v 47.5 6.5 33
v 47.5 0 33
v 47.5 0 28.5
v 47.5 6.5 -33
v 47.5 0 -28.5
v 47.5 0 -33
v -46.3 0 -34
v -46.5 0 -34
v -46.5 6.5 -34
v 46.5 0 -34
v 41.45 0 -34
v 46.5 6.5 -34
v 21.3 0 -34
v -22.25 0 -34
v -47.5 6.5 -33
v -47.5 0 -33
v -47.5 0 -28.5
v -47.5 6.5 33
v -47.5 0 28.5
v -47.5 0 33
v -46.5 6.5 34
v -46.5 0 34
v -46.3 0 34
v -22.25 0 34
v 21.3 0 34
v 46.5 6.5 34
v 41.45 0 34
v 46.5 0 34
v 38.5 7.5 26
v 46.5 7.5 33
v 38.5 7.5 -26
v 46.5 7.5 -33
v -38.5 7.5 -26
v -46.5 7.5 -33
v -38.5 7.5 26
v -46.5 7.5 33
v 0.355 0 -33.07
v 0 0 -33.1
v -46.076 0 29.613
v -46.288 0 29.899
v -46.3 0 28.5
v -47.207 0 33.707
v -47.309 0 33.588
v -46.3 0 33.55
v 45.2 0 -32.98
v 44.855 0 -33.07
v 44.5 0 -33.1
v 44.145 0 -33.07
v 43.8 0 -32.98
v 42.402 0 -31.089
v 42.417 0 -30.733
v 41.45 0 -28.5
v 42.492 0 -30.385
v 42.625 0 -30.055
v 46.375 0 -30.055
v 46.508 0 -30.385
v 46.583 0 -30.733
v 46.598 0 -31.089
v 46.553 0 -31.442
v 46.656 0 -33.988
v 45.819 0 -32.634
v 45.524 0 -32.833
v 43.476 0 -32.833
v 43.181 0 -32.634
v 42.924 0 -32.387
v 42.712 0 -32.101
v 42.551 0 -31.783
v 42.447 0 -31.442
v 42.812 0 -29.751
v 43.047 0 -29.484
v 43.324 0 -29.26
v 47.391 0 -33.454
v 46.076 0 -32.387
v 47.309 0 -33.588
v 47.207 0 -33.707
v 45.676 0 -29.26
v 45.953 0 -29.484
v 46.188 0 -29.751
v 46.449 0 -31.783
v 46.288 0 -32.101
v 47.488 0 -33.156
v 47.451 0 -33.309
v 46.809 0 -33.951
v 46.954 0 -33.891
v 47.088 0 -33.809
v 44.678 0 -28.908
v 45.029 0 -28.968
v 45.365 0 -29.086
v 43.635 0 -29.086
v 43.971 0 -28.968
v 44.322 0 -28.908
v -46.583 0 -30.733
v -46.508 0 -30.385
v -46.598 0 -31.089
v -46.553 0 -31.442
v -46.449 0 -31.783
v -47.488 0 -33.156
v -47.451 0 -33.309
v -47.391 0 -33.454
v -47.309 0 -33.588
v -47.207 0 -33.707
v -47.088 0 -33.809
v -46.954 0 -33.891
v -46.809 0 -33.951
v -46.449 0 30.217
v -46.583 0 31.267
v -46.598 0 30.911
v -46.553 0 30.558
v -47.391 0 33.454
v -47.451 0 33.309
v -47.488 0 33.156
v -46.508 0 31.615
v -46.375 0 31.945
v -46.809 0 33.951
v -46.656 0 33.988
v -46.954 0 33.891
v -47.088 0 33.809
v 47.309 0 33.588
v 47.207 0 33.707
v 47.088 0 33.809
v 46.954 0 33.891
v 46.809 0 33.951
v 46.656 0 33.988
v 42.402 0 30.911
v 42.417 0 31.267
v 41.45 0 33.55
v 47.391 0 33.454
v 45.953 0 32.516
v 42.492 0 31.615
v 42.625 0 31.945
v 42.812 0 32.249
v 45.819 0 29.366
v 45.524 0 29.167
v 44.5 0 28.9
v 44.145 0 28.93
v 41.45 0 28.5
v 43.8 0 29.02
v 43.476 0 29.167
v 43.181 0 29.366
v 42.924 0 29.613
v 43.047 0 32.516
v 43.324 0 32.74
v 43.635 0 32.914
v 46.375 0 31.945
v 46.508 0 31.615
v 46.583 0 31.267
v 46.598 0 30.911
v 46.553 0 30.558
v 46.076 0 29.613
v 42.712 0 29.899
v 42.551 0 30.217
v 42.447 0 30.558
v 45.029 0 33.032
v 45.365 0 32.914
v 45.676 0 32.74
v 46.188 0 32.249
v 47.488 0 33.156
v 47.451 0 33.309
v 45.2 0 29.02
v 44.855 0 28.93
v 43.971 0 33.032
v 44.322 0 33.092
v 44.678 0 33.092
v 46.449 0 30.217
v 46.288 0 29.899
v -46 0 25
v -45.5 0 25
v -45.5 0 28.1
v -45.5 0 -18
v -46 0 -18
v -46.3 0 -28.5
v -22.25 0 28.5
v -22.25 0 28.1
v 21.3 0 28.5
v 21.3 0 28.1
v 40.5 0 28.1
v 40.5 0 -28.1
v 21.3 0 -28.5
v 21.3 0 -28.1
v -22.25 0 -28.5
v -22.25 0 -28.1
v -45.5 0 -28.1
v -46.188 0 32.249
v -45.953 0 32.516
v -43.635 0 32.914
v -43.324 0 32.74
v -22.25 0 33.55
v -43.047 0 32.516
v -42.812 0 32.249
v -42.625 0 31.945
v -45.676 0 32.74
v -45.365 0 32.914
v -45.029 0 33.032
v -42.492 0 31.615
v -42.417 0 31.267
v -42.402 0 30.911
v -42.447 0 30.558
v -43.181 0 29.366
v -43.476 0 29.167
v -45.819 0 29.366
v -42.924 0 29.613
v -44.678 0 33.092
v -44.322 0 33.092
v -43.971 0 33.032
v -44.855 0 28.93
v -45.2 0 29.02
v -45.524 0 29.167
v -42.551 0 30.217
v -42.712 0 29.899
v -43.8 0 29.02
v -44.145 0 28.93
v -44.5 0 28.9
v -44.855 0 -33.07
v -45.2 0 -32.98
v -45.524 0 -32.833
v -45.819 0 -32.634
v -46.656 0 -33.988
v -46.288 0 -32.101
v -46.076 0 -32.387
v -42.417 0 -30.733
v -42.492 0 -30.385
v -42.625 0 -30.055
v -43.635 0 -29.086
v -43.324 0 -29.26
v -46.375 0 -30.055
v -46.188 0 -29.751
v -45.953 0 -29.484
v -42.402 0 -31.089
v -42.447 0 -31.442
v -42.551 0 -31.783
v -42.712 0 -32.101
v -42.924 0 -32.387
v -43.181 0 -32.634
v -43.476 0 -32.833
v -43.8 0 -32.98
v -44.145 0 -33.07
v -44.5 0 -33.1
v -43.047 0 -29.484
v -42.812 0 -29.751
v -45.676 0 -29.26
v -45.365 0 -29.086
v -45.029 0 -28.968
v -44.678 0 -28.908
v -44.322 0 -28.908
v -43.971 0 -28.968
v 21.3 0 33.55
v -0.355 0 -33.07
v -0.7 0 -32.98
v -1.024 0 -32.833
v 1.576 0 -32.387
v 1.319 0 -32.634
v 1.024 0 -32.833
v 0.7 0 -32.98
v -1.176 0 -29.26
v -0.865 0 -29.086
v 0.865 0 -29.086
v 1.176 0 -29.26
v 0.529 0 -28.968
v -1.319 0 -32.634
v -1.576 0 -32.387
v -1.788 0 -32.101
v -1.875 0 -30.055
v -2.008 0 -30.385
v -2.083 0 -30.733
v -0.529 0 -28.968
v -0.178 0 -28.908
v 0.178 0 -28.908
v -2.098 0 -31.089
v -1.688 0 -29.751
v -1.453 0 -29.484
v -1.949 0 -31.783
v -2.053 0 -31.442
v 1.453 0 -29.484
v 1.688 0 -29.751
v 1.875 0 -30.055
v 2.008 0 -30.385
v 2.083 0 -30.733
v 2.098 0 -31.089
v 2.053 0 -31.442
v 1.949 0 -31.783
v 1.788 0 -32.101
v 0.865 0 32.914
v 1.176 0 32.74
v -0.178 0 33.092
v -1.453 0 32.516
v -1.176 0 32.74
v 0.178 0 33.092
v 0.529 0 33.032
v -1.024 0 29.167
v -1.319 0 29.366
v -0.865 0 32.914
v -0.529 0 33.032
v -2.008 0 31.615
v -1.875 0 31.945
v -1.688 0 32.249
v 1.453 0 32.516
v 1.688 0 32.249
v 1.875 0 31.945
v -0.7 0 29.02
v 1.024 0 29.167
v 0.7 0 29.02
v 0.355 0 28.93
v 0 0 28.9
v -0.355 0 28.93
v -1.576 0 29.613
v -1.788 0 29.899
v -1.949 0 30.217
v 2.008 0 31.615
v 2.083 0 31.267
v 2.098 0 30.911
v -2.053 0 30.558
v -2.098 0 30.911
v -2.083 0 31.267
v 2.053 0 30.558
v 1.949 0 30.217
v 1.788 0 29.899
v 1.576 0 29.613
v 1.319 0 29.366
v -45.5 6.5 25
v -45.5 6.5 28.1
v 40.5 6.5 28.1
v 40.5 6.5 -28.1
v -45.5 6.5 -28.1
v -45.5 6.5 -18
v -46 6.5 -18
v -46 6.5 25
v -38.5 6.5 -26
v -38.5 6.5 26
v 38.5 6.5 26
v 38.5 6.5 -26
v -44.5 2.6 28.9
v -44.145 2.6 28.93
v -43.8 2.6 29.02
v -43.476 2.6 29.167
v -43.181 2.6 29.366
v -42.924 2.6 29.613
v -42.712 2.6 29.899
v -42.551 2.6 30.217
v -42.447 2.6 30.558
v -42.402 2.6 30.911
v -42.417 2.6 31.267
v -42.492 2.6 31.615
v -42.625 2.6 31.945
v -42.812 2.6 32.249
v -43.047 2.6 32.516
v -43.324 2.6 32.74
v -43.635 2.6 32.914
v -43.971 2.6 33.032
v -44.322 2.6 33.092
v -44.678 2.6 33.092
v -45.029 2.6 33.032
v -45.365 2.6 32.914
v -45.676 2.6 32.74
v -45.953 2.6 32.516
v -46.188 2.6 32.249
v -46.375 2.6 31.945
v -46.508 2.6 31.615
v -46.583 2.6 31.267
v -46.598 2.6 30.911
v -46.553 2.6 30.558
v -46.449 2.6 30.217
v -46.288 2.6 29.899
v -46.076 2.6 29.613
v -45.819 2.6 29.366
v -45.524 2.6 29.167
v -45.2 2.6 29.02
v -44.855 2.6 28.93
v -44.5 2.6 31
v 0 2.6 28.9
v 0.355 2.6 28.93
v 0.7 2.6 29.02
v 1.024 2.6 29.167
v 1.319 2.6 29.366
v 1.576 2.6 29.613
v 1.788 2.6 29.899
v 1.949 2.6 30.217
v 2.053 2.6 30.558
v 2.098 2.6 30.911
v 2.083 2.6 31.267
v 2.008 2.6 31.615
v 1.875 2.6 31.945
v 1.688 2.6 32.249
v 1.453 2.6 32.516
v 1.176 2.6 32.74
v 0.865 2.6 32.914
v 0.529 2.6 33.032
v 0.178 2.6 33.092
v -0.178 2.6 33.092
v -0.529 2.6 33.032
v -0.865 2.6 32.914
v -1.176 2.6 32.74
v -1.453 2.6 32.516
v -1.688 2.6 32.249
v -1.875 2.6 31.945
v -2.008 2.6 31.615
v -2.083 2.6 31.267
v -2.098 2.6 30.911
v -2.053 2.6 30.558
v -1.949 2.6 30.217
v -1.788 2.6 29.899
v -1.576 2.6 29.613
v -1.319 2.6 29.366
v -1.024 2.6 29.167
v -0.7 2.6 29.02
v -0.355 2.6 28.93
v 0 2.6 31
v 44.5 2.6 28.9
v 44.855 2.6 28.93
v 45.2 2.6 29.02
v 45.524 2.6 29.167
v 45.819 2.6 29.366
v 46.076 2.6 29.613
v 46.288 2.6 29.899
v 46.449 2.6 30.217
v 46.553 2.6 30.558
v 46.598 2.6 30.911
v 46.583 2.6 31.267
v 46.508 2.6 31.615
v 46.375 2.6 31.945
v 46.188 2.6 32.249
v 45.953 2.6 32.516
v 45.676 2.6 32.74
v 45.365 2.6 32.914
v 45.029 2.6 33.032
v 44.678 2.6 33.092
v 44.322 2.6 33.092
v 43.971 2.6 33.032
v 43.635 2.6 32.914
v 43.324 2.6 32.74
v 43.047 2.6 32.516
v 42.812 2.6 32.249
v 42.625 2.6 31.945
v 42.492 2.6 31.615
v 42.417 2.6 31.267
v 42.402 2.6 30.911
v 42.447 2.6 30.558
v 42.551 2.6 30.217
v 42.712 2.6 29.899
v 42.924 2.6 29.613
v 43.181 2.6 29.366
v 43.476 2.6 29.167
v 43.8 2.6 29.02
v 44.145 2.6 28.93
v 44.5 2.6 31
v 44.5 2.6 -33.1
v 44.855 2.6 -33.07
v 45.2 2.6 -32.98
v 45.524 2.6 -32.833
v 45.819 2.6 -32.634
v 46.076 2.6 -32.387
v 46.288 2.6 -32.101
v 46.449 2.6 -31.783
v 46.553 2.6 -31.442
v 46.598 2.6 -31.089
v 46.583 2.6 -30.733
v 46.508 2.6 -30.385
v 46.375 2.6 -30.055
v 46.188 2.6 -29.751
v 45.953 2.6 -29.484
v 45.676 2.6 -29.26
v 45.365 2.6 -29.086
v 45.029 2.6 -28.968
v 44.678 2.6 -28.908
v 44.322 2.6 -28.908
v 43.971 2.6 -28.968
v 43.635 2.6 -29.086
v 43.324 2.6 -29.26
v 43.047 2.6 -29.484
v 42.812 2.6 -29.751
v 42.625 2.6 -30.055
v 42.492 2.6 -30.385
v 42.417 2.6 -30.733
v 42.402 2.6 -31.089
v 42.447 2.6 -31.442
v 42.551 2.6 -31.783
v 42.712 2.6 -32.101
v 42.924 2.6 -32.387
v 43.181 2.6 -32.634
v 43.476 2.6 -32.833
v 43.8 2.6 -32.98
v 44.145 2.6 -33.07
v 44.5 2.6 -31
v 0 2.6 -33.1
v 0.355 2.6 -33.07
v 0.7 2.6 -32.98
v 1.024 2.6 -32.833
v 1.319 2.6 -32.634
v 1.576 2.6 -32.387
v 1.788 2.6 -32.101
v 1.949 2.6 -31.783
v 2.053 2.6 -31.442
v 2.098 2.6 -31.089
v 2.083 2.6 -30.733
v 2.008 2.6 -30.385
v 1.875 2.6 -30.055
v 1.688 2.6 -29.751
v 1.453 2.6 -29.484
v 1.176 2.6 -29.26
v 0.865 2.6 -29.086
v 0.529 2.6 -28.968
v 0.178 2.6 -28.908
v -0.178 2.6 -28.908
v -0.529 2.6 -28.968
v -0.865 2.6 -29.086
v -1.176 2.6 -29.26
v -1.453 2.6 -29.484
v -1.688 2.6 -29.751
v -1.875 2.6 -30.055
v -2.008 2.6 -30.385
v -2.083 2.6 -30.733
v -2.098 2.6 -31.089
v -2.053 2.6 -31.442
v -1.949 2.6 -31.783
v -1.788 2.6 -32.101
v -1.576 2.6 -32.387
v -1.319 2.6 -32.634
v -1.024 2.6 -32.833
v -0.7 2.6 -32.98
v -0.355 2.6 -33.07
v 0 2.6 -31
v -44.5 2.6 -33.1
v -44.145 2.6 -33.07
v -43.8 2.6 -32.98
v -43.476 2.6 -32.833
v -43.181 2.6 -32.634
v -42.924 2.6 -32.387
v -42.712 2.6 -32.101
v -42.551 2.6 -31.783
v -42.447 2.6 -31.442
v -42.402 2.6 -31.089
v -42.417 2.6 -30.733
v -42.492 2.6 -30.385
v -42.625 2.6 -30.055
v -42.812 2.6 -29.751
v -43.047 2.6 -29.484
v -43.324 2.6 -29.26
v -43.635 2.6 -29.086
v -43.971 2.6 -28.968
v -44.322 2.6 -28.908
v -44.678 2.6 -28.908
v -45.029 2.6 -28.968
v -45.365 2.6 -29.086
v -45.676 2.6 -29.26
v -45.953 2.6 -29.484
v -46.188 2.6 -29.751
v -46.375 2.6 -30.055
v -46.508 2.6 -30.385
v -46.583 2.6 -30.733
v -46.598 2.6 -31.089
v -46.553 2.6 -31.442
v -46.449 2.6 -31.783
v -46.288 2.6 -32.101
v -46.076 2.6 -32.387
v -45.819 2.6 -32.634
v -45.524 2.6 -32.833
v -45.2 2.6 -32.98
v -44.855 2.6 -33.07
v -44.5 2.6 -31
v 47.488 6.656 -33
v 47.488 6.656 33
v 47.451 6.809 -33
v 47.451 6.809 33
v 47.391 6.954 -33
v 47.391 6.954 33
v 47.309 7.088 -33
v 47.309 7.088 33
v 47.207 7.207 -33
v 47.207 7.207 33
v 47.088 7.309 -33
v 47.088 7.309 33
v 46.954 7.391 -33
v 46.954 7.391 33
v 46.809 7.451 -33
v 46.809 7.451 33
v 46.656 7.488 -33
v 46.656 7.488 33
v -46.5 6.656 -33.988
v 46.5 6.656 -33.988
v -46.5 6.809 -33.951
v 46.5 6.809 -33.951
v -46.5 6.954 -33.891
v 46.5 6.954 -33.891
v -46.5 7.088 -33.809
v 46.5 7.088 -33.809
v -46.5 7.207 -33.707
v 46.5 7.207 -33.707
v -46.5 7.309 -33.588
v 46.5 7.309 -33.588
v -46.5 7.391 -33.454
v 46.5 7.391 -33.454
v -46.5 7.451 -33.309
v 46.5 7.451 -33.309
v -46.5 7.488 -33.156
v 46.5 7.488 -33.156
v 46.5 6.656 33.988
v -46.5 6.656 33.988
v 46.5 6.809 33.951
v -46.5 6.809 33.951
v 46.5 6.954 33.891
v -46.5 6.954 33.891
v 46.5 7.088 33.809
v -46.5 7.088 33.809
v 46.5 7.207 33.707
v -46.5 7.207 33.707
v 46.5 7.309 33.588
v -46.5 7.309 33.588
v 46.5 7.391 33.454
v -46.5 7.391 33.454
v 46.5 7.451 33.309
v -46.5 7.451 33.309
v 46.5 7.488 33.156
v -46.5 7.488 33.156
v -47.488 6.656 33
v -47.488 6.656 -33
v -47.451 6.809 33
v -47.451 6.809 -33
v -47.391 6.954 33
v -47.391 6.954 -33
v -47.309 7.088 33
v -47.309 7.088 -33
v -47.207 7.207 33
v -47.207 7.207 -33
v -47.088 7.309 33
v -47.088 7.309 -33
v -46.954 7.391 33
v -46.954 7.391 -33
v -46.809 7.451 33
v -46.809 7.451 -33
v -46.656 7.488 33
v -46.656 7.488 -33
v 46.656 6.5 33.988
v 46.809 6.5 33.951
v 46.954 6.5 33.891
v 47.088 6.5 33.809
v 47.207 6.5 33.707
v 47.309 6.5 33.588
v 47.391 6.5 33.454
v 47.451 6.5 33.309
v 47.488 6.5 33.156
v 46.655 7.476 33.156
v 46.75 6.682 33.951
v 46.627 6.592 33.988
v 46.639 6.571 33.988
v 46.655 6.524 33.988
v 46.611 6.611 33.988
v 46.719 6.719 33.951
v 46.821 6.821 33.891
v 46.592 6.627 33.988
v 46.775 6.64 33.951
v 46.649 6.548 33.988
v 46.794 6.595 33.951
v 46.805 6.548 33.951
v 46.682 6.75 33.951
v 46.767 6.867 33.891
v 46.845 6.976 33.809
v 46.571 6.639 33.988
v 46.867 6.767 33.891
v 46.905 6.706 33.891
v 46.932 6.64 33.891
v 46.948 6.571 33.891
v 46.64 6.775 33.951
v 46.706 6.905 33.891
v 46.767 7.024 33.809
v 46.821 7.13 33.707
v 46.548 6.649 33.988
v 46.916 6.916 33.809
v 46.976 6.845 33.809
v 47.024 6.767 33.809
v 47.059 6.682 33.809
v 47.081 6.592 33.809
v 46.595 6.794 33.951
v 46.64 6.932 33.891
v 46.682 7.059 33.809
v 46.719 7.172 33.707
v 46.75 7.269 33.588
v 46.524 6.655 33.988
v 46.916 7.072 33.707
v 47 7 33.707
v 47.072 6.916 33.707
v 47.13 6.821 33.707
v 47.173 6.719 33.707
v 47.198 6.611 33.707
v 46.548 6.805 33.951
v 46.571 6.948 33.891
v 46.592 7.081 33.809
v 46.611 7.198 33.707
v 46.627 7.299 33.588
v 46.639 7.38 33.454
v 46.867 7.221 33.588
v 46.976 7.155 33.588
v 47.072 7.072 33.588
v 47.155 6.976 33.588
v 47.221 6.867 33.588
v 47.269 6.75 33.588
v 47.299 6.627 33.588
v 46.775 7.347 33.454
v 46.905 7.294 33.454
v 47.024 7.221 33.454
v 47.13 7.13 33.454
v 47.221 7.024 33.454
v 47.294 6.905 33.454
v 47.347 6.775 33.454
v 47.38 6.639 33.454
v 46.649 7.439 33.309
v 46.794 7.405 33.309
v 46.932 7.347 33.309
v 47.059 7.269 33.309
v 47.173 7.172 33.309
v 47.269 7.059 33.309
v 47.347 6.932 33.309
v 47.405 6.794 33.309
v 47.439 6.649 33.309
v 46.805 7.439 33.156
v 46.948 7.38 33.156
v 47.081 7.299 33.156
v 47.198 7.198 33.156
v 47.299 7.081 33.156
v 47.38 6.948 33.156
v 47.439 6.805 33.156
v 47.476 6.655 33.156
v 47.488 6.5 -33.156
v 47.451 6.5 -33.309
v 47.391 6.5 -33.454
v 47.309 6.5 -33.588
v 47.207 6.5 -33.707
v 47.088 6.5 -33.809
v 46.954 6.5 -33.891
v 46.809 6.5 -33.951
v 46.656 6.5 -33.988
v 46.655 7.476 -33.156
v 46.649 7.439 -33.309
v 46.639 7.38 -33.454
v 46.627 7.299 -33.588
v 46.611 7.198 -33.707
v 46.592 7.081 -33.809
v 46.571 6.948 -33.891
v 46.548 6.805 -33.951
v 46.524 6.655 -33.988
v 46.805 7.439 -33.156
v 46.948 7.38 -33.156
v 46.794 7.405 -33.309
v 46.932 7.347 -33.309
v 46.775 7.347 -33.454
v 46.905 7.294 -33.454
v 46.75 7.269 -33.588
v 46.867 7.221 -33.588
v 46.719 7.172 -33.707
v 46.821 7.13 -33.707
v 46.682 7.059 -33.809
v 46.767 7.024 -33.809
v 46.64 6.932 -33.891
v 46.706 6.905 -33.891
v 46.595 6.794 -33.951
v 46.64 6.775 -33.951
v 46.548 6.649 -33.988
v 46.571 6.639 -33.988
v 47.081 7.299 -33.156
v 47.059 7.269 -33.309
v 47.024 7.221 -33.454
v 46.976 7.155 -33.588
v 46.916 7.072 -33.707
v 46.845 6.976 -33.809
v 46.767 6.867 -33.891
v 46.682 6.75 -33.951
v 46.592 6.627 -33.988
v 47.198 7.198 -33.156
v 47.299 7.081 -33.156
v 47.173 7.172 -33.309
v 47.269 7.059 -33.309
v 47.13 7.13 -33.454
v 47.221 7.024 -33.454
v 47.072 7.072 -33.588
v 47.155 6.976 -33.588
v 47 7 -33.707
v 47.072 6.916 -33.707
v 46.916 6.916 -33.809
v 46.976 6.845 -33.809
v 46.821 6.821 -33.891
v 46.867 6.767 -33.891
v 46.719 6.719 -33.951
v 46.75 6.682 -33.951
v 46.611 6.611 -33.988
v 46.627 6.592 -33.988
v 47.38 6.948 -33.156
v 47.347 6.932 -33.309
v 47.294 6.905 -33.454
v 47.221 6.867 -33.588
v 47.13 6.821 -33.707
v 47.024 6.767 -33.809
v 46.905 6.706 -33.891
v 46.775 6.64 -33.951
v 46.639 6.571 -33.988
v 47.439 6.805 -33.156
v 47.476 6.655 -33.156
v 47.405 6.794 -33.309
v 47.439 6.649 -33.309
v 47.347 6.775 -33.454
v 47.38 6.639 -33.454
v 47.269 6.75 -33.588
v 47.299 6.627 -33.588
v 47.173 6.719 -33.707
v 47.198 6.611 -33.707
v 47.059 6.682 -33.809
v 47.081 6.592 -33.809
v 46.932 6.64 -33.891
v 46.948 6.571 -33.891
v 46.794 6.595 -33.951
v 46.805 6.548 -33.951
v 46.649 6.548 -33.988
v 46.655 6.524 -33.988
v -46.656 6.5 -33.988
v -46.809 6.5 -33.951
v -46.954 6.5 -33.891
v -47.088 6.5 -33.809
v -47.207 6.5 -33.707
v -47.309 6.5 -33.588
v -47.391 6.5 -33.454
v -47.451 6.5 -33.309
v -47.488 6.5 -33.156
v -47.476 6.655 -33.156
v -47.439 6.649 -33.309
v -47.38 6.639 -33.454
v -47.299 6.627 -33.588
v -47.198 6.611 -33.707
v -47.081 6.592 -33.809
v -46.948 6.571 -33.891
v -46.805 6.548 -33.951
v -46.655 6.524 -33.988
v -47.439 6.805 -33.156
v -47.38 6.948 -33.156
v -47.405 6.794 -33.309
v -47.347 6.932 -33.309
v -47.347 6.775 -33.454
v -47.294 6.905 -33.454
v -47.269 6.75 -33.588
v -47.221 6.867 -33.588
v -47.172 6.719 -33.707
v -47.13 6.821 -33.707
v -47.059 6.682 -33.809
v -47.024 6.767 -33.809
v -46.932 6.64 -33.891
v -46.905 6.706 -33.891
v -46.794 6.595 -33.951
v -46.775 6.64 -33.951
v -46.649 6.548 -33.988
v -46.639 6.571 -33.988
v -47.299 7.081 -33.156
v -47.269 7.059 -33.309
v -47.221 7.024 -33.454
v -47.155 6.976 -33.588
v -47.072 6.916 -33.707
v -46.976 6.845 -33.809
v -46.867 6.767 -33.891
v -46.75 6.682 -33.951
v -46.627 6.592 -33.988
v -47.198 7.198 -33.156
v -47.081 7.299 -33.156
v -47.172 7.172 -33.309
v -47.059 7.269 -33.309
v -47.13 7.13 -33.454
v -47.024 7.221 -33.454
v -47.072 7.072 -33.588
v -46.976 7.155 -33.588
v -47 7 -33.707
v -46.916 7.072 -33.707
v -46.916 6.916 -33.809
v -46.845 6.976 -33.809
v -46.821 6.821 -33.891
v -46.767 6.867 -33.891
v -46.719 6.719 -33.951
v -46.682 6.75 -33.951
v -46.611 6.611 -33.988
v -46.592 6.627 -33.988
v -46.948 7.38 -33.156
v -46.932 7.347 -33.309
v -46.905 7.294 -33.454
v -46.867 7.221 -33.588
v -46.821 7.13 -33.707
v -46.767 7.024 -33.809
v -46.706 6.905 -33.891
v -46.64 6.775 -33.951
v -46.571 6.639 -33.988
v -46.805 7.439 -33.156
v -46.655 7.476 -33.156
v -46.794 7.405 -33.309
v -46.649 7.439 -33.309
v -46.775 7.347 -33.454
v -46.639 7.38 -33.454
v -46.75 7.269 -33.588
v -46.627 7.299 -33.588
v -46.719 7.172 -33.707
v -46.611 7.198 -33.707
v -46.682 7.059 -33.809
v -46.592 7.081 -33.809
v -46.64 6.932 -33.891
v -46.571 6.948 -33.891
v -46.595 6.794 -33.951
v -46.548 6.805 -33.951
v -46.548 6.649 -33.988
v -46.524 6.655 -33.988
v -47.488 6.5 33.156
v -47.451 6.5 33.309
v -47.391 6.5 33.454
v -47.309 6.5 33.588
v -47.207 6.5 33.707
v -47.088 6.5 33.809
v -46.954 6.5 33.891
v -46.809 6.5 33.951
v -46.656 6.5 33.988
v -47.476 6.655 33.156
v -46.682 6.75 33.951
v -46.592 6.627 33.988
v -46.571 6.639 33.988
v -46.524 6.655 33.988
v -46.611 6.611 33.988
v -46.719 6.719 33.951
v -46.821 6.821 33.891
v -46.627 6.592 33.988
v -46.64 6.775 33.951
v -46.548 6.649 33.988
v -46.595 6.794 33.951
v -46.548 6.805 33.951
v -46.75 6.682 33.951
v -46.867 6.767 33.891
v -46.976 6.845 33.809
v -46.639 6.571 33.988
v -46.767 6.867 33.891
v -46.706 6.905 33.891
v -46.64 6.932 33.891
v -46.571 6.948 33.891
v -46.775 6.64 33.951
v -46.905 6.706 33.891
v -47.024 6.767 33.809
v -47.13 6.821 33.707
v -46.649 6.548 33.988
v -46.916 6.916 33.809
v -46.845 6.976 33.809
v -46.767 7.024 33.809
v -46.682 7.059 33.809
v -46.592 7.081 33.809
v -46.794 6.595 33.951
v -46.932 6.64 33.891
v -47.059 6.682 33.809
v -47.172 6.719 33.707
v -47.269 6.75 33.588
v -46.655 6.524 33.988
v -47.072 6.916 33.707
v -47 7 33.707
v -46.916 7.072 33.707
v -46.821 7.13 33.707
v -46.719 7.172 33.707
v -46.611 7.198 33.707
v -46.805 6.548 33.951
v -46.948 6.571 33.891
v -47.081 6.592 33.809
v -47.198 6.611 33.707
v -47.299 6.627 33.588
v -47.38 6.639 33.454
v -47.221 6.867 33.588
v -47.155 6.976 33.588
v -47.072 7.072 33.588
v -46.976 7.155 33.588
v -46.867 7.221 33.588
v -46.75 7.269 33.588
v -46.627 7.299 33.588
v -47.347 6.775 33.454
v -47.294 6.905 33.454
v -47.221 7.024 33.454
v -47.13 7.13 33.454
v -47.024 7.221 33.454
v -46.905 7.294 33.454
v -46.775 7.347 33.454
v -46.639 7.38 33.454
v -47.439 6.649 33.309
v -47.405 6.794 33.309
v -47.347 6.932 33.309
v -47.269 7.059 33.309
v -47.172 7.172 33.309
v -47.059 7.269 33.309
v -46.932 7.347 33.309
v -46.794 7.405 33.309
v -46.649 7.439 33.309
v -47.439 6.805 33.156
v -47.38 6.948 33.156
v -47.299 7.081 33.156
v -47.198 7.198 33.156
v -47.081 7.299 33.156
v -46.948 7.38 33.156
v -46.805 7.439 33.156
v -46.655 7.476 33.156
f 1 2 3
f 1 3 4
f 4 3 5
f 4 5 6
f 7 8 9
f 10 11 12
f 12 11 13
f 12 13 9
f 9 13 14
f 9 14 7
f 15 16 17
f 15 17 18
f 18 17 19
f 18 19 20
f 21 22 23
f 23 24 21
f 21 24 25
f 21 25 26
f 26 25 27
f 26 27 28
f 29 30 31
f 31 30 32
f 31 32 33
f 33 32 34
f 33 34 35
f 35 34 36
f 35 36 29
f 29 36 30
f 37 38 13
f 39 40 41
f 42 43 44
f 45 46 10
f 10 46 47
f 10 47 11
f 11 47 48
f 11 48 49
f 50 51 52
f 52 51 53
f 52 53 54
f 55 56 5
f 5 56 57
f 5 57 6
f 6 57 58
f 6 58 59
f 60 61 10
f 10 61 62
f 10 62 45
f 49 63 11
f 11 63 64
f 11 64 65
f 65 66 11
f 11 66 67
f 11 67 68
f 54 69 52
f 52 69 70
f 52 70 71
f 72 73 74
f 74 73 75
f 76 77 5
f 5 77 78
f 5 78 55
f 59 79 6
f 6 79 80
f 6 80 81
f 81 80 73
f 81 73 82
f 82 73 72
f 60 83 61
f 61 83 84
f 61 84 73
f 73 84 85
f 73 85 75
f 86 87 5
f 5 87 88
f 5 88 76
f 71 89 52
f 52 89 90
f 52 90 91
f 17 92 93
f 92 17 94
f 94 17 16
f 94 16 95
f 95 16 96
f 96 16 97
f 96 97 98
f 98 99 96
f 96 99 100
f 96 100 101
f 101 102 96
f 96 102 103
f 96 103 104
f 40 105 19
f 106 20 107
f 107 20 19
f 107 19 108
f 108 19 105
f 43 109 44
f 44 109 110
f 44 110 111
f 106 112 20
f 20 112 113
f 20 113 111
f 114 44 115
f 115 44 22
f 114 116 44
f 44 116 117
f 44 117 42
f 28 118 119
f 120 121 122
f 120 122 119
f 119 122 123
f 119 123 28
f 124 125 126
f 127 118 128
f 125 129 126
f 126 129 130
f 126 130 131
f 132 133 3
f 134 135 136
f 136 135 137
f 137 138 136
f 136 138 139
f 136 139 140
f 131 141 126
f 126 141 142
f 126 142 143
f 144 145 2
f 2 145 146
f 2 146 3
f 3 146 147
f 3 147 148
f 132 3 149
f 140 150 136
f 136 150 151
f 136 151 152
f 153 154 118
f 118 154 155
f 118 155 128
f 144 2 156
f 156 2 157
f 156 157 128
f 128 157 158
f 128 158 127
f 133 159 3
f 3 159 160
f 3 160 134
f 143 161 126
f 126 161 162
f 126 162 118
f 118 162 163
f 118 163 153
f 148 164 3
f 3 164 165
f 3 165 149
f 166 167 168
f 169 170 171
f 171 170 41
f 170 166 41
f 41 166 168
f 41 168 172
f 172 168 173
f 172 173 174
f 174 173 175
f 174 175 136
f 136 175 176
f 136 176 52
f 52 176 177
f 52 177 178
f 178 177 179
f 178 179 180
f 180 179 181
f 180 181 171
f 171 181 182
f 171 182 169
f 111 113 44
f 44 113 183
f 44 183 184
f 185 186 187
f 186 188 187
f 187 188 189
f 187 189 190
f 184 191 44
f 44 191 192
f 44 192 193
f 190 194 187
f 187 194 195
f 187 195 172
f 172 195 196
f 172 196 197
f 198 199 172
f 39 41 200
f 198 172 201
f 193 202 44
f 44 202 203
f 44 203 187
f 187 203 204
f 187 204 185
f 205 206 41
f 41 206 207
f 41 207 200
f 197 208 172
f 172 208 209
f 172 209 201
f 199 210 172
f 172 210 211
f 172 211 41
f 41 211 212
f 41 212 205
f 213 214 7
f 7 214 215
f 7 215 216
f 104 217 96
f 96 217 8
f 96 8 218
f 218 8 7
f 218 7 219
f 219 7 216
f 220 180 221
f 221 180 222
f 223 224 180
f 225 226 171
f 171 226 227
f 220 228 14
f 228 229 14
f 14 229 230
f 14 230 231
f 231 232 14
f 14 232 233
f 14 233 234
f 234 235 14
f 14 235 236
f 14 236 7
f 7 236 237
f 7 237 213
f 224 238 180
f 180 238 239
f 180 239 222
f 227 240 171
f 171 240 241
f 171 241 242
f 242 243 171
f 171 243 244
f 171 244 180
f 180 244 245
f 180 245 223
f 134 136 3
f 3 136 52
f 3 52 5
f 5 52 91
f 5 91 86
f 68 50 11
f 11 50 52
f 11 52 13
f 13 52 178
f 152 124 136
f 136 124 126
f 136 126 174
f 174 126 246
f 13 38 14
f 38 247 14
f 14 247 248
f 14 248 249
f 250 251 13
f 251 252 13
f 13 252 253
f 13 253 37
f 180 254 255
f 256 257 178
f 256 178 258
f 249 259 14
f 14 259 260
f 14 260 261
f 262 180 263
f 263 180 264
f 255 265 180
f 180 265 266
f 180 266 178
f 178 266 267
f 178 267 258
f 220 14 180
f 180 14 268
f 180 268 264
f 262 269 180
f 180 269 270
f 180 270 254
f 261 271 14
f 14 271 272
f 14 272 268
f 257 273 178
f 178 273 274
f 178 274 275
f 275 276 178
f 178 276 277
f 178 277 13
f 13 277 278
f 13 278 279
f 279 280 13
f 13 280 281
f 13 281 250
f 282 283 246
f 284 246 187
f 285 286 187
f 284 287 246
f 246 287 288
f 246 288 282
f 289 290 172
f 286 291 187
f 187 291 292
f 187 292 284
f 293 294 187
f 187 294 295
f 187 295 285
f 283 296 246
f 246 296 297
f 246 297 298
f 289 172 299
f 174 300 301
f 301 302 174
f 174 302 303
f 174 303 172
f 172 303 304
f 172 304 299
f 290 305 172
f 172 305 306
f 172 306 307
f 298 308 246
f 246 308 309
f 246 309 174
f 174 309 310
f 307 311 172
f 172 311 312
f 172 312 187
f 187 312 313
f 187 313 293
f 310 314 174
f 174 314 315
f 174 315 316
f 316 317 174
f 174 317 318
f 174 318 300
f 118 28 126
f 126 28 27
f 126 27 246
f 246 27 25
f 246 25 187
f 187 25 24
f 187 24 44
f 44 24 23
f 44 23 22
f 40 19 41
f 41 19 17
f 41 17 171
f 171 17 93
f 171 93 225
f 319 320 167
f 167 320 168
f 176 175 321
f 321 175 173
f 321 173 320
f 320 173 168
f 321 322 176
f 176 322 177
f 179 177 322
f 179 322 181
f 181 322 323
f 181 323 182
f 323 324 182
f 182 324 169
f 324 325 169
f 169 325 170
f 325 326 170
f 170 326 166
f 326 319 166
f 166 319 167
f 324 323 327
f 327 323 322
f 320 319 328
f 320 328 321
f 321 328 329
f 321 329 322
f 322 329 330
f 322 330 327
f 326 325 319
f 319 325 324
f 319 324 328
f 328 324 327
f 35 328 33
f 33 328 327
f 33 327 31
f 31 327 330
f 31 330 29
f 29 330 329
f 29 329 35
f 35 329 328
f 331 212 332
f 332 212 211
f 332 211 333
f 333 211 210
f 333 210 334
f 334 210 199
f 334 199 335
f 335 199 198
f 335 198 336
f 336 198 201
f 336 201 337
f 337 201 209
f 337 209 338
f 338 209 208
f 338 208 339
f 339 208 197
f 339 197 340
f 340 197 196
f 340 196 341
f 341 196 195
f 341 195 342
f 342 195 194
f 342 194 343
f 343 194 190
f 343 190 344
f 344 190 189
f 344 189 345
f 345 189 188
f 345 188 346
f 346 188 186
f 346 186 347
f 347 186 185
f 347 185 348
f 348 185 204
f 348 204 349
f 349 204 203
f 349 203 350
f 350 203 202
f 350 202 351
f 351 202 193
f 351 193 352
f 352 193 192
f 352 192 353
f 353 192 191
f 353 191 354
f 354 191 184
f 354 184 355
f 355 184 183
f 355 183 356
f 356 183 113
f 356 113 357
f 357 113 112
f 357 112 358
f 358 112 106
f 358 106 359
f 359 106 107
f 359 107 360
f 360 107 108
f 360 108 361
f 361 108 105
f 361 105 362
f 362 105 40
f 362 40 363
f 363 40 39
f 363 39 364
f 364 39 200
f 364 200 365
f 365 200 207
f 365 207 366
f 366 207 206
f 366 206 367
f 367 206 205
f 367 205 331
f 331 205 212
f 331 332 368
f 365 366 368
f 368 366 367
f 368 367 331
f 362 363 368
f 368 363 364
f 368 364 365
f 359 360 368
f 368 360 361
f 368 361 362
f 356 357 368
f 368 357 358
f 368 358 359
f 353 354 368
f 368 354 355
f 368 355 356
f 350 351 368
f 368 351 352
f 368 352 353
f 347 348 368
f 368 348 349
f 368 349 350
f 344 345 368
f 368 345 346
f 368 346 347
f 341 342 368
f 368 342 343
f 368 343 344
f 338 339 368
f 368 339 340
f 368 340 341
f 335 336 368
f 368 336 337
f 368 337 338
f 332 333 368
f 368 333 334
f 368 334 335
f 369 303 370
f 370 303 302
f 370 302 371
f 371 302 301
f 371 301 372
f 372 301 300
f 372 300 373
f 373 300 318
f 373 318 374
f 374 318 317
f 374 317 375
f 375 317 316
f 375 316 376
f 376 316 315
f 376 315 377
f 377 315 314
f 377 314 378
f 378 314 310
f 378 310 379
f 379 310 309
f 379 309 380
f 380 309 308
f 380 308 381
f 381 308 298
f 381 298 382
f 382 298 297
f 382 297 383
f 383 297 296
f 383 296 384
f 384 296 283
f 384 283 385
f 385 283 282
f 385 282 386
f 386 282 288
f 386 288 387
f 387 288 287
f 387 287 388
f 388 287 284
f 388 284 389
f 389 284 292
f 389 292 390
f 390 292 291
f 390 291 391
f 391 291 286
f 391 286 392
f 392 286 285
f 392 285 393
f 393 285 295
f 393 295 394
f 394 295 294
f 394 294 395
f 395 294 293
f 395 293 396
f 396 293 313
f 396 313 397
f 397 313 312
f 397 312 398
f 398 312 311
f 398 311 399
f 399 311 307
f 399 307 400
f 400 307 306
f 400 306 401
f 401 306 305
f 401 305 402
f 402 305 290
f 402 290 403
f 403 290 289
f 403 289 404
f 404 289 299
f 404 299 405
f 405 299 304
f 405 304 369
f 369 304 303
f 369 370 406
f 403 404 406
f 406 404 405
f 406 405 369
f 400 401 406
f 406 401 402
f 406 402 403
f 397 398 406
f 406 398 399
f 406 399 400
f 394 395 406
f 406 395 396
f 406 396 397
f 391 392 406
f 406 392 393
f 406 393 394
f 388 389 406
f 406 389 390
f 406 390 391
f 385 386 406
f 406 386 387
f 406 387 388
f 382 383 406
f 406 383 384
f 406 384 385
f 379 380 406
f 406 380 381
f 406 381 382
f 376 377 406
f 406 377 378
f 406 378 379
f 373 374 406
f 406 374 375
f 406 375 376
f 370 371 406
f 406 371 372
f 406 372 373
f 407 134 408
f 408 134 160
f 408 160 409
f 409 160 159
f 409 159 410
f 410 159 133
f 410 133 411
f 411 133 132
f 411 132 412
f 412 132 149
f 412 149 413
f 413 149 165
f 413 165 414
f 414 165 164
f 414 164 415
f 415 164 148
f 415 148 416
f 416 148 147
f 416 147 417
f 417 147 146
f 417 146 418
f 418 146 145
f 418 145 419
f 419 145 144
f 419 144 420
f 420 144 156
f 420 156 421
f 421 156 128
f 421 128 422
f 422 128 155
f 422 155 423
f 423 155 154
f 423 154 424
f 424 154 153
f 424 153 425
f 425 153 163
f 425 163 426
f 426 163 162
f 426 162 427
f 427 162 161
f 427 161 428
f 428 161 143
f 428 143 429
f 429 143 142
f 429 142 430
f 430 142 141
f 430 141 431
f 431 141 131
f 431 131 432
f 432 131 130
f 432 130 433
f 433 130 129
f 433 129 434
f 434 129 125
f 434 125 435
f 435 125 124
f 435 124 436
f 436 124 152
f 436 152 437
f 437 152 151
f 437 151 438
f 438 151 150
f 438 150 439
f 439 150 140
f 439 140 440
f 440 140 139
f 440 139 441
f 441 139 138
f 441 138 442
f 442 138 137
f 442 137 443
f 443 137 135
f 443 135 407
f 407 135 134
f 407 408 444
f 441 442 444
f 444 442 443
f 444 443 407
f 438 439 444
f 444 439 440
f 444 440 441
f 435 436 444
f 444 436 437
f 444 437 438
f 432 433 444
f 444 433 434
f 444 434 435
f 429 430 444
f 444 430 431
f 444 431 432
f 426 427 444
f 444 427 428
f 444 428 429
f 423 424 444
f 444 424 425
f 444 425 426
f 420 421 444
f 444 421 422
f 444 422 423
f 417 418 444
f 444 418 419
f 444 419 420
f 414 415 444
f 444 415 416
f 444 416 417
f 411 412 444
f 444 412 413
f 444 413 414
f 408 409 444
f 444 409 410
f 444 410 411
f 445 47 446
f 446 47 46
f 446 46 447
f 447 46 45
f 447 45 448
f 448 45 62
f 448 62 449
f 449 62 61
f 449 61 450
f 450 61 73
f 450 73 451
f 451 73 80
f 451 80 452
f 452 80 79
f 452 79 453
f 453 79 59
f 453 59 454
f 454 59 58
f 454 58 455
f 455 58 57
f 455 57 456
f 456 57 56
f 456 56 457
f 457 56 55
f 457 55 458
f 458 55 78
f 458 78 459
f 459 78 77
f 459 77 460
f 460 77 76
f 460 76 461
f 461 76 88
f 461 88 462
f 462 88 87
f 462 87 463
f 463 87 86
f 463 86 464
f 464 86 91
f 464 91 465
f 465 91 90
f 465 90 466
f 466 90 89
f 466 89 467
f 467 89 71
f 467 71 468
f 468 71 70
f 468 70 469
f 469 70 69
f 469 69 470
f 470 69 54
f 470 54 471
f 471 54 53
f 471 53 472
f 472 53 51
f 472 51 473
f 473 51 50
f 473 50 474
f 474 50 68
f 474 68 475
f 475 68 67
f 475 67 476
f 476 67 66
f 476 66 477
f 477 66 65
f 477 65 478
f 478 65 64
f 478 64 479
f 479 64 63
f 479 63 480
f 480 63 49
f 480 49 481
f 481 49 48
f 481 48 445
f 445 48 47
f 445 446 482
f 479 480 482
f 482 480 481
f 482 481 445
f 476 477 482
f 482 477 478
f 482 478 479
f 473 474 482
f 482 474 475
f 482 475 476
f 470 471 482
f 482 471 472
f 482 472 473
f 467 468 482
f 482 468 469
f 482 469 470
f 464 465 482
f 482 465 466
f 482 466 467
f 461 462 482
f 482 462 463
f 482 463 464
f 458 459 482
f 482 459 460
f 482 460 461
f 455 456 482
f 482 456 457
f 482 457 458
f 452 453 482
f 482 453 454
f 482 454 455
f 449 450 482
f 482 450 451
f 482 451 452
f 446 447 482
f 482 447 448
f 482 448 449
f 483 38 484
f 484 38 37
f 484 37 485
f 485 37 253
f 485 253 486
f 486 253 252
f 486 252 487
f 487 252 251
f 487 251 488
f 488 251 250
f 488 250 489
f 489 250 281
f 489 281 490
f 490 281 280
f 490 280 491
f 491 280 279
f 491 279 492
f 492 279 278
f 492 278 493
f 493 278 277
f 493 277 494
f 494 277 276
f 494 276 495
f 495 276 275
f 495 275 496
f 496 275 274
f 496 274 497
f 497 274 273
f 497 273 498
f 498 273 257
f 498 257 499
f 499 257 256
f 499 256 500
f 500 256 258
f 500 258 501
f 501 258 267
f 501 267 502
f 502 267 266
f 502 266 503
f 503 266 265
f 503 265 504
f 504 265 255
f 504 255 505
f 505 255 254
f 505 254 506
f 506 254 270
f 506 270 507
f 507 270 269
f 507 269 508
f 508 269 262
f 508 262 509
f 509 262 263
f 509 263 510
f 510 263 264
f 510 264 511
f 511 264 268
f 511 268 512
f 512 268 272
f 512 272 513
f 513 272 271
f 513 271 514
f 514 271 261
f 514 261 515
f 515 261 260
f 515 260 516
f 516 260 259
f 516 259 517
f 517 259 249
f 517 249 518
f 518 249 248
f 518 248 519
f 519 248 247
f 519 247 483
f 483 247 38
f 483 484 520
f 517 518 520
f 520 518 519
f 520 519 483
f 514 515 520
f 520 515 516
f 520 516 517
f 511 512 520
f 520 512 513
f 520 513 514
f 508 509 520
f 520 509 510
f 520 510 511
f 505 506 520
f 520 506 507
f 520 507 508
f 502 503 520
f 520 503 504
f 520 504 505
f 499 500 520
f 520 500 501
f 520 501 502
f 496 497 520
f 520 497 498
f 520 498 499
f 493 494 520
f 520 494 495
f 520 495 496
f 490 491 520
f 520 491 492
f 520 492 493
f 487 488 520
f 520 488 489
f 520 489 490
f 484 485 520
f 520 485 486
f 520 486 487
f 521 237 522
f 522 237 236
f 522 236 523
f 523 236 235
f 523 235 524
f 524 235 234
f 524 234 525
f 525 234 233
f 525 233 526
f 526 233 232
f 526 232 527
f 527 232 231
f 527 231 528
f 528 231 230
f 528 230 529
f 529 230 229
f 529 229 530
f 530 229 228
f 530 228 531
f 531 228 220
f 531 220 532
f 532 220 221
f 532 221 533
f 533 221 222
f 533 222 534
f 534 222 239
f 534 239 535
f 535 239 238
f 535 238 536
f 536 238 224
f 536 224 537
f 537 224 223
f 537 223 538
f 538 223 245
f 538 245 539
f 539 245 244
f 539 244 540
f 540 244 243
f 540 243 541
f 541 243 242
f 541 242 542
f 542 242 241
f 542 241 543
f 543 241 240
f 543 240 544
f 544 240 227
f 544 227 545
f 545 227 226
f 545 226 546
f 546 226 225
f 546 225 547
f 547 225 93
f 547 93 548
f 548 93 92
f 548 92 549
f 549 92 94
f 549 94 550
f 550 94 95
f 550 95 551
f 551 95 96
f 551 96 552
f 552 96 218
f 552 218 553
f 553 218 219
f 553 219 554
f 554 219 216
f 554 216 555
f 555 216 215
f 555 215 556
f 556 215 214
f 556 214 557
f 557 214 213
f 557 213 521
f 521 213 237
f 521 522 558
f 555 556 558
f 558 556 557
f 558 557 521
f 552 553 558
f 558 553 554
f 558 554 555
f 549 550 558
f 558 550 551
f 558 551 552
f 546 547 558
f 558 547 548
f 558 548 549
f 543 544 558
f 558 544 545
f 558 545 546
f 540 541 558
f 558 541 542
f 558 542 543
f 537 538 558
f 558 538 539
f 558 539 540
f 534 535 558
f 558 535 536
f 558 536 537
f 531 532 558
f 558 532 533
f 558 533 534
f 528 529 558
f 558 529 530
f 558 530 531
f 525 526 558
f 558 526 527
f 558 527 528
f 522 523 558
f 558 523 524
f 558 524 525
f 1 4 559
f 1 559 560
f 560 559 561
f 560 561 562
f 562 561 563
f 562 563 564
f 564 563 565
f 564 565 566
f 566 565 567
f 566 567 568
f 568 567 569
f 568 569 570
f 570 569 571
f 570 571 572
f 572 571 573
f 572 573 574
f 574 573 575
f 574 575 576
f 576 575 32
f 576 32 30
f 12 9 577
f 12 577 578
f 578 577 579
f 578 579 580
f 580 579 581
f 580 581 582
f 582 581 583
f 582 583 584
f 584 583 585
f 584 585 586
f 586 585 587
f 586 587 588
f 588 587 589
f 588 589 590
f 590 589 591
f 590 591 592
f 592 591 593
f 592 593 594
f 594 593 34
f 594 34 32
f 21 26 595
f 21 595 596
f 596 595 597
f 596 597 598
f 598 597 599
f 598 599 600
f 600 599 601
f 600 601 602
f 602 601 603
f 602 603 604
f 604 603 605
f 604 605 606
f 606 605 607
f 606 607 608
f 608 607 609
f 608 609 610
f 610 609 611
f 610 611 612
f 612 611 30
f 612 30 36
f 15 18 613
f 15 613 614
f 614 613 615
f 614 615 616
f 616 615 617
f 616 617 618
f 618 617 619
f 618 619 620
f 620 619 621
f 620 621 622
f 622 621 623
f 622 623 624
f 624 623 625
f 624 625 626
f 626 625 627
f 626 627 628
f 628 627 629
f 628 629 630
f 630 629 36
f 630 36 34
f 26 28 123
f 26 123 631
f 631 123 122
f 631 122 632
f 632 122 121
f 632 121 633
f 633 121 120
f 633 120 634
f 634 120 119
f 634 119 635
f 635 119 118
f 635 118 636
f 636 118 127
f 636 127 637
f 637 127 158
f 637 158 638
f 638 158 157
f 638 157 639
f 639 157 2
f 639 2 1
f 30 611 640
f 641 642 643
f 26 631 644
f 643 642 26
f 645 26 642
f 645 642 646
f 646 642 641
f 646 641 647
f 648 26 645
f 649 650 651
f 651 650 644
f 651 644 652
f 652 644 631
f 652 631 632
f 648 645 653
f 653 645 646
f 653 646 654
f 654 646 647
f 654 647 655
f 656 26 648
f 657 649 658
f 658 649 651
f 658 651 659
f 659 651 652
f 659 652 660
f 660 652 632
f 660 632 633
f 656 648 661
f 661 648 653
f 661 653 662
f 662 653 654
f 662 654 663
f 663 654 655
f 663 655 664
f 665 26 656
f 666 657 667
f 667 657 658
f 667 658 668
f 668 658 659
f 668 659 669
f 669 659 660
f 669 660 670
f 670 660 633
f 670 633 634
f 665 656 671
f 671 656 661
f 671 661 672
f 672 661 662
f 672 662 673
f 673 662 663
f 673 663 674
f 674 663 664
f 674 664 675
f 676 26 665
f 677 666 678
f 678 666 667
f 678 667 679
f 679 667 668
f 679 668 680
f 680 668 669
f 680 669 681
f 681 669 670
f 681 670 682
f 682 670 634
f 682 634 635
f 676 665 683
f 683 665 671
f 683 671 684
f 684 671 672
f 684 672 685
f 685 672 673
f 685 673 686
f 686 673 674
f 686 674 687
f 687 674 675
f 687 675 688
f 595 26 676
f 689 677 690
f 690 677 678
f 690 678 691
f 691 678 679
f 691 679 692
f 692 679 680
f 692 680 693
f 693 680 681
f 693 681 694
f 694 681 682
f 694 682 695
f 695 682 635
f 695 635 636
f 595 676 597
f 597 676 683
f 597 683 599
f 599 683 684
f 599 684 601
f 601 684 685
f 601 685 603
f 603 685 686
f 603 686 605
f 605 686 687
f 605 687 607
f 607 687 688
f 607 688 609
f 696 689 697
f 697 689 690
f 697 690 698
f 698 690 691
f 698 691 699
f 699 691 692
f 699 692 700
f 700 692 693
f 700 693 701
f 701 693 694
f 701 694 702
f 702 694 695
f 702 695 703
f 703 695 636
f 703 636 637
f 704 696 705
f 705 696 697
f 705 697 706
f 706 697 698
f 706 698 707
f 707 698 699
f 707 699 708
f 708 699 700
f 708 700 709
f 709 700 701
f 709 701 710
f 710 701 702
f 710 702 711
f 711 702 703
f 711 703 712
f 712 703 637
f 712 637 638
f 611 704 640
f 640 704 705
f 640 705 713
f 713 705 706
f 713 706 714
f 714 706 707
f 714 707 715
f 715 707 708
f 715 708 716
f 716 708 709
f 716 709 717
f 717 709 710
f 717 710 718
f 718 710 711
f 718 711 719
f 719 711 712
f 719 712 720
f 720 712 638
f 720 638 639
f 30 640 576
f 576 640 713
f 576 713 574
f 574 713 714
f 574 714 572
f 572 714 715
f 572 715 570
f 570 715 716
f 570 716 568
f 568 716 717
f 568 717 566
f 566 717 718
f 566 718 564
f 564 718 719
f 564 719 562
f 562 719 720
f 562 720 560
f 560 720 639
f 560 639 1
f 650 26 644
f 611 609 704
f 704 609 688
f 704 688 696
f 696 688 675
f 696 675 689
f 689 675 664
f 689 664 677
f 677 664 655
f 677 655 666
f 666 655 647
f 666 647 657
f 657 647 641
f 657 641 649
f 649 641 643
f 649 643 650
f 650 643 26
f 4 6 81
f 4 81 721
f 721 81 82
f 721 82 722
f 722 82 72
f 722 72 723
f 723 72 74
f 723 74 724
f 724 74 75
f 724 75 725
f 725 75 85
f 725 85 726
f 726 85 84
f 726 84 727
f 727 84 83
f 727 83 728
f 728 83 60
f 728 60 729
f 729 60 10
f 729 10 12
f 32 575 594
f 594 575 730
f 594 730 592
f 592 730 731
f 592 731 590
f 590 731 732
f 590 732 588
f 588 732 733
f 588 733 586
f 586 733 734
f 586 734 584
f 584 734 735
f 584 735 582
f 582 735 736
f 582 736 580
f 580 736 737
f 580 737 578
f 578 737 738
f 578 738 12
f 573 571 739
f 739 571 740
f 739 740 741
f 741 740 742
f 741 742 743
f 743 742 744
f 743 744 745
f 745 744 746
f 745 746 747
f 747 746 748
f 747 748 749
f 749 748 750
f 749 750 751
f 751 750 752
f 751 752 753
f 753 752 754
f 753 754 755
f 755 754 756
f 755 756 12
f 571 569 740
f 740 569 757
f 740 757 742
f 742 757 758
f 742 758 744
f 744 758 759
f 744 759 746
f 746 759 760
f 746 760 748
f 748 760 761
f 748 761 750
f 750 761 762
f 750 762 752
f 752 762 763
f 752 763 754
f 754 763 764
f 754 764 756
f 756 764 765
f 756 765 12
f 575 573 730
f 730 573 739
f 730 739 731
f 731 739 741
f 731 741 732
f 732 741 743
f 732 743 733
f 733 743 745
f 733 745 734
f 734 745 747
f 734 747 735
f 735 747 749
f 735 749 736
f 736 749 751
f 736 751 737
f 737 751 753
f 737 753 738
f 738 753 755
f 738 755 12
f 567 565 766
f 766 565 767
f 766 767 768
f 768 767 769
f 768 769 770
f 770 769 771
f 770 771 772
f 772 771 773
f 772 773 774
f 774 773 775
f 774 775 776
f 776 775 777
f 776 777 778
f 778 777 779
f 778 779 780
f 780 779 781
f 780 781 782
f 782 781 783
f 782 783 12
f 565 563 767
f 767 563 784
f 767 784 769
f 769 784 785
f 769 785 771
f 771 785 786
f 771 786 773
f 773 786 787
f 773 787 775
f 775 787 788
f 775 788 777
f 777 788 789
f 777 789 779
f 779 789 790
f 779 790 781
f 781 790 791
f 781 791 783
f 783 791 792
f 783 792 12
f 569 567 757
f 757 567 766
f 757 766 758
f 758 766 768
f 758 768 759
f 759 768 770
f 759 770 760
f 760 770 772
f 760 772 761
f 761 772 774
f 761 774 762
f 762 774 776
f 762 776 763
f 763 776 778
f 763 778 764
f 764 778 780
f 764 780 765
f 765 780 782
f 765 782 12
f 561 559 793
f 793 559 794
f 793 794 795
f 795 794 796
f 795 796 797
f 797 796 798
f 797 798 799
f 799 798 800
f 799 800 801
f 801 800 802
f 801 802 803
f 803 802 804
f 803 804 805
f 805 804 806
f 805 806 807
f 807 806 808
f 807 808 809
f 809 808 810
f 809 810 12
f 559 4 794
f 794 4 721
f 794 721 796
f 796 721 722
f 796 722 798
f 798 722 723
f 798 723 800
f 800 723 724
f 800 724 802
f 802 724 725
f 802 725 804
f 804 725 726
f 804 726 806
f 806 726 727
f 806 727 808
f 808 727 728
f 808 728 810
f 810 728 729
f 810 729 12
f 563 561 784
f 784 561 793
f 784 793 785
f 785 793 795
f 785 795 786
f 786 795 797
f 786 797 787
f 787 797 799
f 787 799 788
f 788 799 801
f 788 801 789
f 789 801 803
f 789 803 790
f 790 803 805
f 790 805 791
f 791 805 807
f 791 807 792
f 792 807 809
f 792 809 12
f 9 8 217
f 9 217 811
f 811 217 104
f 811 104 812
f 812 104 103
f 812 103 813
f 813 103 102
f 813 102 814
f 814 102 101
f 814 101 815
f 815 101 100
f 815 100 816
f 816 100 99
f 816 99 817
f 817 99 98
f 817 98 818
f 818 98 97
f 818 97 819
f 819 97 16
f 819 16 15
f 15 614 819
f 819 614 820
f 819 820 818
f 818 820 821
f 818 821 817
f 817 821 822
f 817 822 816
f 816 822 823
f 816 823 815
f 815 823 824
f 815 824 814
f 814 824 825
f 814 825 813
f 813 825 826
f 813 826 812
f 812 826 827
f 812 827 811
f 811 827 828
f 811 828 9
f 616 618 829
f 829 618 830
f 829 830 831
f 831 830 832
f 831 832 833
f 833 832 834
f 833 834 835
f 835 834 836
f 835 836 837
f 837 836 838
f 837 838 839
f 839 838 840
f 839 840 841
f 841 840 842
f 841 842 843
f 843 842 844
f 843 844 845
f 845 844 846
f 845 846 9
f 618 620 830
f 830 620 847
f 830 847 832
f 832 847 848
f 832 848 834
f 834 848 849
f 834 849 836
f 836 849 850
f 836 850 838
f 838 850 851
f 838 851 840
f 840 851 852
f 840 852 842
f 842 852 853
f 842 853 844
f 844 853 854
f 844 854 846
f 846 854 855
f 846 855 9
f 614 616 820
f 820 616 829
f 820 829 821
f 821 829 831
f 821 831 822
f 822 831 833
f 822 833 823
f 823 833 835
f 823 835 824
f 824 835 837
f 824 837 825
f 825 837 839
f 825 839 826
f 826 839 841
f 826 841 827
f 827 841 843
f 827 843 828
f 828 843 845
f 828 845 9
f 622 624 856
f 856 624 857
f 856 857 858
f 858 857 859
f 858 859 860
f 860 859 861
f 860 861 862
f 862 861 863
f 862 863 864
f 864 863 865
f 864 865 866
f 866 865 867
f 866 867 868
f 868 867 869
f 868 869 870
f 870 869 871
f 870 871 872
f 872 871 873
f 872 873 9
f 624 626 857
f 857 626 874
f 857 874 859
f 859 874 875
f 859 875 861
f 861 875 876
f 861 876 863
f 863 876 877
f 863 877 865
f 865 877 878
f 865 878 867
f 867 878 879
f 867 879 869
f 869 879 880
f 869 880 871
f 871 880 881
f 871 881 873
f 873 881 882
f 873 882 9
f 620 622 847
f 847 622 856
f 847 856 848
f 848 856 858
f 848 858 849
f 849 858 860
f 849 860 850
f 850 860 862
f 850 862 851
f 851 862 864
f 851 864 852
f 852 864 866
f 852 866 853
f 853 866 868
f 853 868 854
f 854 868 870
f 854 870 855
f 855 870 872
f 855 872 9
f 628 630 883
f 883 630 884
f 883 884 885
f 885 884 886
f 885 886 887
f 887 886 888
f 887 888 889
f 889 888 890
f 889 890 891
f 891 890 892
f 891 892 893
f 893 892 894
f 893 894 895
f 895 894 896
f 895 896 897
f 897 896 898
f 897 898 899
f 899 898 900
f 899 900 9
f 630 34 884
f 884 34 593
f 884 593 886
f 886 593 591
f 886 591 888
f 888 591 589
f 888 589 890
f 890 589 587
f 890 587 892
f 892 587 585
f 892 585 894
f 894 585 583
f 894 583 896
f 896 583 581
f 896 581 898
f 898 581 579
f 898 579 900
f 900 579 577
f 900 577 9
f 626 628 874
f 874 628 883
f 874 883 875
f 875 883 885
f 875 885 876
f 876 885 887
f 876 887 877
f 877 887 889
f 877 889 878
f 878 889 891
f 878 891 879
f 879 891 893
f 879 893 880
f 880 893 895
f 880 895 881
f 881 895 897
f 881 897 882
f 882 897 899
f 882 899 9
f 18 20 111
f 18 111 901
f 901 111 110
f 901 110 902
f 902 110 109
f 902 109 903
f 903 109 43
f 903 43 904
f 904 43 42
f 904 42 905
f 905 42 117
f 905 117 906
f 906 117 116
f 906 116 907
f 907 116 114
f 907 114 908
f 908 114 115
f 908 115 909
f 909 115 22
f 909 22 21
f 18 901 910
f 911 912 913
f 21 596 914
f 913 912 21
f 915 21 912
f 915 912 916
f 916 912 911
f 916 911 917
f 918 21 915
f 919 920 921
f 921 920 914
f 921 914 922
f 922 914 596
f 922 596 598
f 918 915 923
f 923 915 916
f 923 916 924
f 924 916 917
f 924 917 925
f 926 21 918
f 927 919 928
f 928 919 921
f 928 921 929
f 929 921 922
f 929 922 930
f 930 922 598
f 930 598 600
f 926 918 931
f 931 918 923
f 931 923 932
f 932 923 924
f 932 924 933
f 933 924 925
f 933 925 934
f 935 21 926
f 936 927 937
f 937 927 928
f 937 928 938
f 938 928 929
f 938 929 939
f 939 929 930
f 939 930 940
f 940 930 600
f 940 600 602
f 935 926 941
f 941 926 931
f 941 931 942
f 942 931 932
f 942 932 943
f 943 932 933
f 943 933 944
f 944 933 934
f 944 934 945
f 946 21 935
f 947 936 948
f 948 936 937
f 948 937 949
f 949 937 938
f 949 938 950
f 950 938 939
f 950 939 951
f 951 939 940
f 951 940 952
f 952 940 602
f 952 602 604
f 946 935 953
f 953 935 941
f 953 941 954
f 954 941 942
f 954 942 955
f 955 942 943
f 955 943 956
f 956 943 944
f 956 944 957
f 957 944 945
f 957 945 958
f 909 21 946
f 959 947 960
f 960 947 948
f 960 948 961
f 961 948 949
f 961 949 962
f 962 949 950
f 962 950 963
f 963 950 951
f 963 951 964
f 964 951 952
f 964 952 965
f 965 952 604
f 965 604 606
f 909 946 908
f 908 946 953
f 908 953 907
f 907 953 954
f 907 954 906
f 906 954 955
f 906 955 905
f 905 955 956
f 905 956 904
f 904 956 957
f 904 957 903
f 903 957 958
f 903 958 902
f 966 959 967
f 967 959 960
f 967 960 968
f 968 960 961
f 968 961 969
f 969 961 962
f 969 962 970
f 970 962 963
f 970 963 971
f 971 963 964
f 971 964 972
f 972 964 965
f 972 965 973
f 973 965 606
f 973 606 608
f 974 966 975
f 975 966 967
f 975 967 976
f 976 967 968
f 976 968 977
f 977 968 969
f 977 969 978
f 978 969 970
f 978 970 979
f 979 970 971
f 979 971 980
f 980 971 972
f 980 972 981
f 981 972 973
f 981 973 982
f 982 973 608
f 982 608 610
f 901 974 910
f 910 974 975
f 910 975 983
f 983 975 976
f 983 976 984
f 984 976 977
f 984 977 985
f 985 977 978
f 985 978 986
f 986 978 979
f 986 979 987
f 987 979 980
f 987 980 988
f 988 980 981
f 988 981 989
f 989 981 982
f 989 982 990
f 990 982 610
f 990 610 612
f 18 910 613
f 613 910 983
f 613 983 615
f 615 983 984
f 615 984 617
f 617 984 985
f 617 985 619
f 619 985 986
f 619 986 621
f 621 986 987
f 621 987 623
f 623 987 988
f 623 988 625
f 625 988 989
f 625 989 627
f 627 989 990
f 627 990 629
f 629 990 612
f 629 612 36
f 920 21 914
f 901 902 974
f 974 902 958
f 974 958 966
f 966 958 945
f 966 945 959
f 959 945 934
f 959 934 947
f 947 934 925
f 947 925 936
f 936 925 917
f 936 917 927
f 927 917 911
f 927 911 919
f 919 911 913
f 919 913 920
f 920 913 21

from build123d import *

# Parameters (mm, degrees)
SKETCH_1_W          = 95
SKETCH_1_H          = 68
EXTRUDE_1_DEPTH     = 7.5
CUT_EXTRUDE_1_DEPTH = 6.5
SKETCH_3_W          = 77
SKETCH_3_H          = 52
CUT_EXTRUDE_2_DEPTH = 59.893972527
SKETCH_4_R          = 2.1
CUT_EXTRUDE_3_DEPTH = 2.6
FILLET_1_R          = 1
FILLET_2_R          = 1


with BuildPart() as part:
    # 草图1 → 凸台-拉伸1 (new body)
    with BuildSketch(Plane(origin=(0, 0, 0), x_dir=(1, 0, 0), z_dir=(0, 1, 0))):
        Rectangle(SKETCH_1_W, SKETCH_1_H)
    extrude(amount=EXTRUDE_1_DEPTH)

    # 草图2 → 切除-拉伸1 (cut)
    with BuildSketch(Plane.XZ):
        Polygon((-45.5, 28.1), (40.5, 28.1), (40.5, -28.1), (-45.5, -28.1), (-45.5, -18), (-46, -18), (-46, 25), (-45.5, 25), align=None)
    extrude(amount=-CUT_EXTRUDE_1_DEPTH, mode=Mode.SUBTRACT)

    # 草图3 → 切除-拉伸2 (cut, through all)
    with BuildSketch(Plane(origin=(0, 7.5, 0), x_dir=(1, 0, 0), z_dir=(0, 1, 0))):
        Rectangle(SKETCH_3_W, SKETCH_3_H)
    extrude(amount=-CUT_EXTRUDE_2_DEPTH, mode=Mode.SUBTRACT)

    # 草图4 → 切除-拉伸3 (cut)
    with BuildSketch(Plane.XZ):
        with Locations(Location((-44.5, 31, 0), (0, 0, 270))):
            Circle(SKETCH_4_R)
        with Locations(Location((0, 31, 0), (0, 0, 270))):
            Circle(SKETCH_4_R)
        with Locations(Location((44.5, 31, 0), (0, 0, 270))):
            Circle(SKETCH_4_R)
        with Locations(Location((44.5, -31, 0), (0, 0, 270))):
            Circle(SKETCH_4_R)
        with Locations(Location((0, -31, 0), (0, 0, 270))):
            Circle(SKETCH_4_R)
        with Locations(Location((-44.5, -31, 0), (0, 0, 270))):
            Circle(SKETCH_4_R)
    extrude(amount=-CUT_EXTRUDE_3_DEPTH, mode=Mode.SUBTRACT)

    # 圆角1
    fillet_1_edges = [part.edges().sort_by_distance(p)[0] for p in [
        (-47.5, 7.5, 0),
        (0, 7.5, 34),
        (47.5, 7.5, 0),
        (0, 7.5, -34),
    ]]
    fillet(fillet_1_edges, radius=FILLET_1_R)

    # 圆角2
    # the kernel refuses this fillet: 1 mm, written as the material it takes off along each edge
    with BuildSketch(Plane(origin=(46.5, 6.5, -33), x_dir=(0, 0, -1), z_dir=(1, 0, 0))) as fillet_2_piece_1_section:
        Polygon((0, 0), (FILLET_2_R, 0), (FILLET_2_R, FILLET_2_R), (0, FILLET_2_R), align=None)
    fillet_2_piece_1 = extrude(amount=FILLET_2_R, mode=Mode.PRIVATE)
    fillet_2_piece_1 = fillet_2_piece_1 - Plane(origin=(46.5, 6.5, -33), x_dir=(0, -0.7071067811865475, 0.7071067811865475), z_dir=(1, 0, 0)) * Sphere(FILLET_2_R, mode=Mode.PRIVATE)
    add(fillet_2_piece_1, mode=Mode.SUBTRACT)
    with BuildSketch(Plane(origin=(46.5, 6.5, 33), x_dir=(1, 0, 0), z_dir=(0, 0, 1))) as fillet_2_piece_2_section:
        Polygon((0, 0), (FILLET_2_R, 0), (FILLET_2_R, FILLET_2_R), (0, FILLET_2_R), align=None)
    fillet_2_piece_2 = extrude(amount=FILLET_2_R, mode=Mode.PRIVATE)
    fillet_2_piece_2 = fillet_2_piece_2 - Plane(origin=(46.5, 6.5, 33), x_dir=(-0.7071067811865475, -0.7071067811865475, 0), z_dir=(0, 0, 1)) * Sphere(FILLET_2_R, mode=Mode.PRIVATE)
    add(fillet_2_piece_2, mode=Mode.SUBTRACT)
    with BuildSketch(Plane(origin=(-46.5, 6.5, -33), x_dir=(0, 0, -1), z_dir=(-1, 0, 0))) as fillet_2_piece_3_section:
        Polygon((0, 0), (FILLET_2_R, 0), (FILLET_2_R, -FILLET_2_R), (0, -FILLET_2_R), align=None)
    fillet_2_piece_3 = extrude(amount=FILLET_2_R, mode=Mode.PRIVATE)
    fillet_2_piece_3 = fillet_2_piece_3 - Plane(origin=(-46.5, 6.5, -33), x_dir=(0, -0.7071067811865475, 0.7071067811865475), z_dir=(-1, 0, 0)) * Sphere(FILLET_2_R, mode=Mode.PRIVATE)
    add(fillet_2_piece_3, mode=Mode.SUBTRACT)
    with BuildSketch(Plane(origin=(-46.5, 6.5, 33), x_dir=(-1, 0, 0), z_dir=(0, 0, 1))) as fillet_2_piece_4_section:
        Polygon((0, 0), (FILLET_2_R, 0), (FILLET_2_R, -FILLET_2_R), (0, -FILLET_2_R), align=None)
    fillet_2_piece_4 = extrude(amount=FILLET_2_R, mode=Mode.PRIVATE)
    fillet_2_piece_4 = fillet_2_piece_4 - Plane(origin=(-46.5, 6.5, 33), x_dir=(0.7071067811865475, -0.7071067811865475, 0), z_dir=(0, 0, 1)) * Sphere(FILLET_2_R, mode=Mode.PRIVATE)
    add(fillet_2_piece_4, mode=Mode.SUBTRACT)
    with BuildSketch(Plane(origin=(-47.5, -2.5, 34), x_dir=(1, 0, 0), z_dir=(0, 1, 0)), Plane(origin=(-47.5, -2.5, -34), x_dir=(0, 0, 1), z_dir=(0, 1, 0))) as fillet_2_piece_5:
        with BuildLine():
            CenterArc((FILLET_2_R, FILLET_2_R), FILLET_2_R, 180, 90)
            Line((0, FILLET_2_R), (0, 0))
            Line((0, 0), (FILLET_2_R, 0))
        make_face()
    extrude(amount=9, mode=Mode.SUBTRACT)
    with BuildSketch(Plane(origin=(47.5, -2.5, -34), x_dir=(0, 0, 1), z_dir=(0, 1, 0)), Plane(origin=(47.5, -2.5, 34), x_dir=(-1, 0, 0), z_dir=(0, 1, 0))) as fillet_2_piece_6:
        with BuildLine():
            CenterArc((FILLET_2_R, -FILLET_2_R), FILLET_2_R, 90, 90)
            Line((0, -FILLET_2_R), (0, 0))
            Line((0, 0), (FILLET_2_R, 0))
        make_face()
    extrude(amount=9, mode=Mode.SUBTRACT)


solid = part.part
